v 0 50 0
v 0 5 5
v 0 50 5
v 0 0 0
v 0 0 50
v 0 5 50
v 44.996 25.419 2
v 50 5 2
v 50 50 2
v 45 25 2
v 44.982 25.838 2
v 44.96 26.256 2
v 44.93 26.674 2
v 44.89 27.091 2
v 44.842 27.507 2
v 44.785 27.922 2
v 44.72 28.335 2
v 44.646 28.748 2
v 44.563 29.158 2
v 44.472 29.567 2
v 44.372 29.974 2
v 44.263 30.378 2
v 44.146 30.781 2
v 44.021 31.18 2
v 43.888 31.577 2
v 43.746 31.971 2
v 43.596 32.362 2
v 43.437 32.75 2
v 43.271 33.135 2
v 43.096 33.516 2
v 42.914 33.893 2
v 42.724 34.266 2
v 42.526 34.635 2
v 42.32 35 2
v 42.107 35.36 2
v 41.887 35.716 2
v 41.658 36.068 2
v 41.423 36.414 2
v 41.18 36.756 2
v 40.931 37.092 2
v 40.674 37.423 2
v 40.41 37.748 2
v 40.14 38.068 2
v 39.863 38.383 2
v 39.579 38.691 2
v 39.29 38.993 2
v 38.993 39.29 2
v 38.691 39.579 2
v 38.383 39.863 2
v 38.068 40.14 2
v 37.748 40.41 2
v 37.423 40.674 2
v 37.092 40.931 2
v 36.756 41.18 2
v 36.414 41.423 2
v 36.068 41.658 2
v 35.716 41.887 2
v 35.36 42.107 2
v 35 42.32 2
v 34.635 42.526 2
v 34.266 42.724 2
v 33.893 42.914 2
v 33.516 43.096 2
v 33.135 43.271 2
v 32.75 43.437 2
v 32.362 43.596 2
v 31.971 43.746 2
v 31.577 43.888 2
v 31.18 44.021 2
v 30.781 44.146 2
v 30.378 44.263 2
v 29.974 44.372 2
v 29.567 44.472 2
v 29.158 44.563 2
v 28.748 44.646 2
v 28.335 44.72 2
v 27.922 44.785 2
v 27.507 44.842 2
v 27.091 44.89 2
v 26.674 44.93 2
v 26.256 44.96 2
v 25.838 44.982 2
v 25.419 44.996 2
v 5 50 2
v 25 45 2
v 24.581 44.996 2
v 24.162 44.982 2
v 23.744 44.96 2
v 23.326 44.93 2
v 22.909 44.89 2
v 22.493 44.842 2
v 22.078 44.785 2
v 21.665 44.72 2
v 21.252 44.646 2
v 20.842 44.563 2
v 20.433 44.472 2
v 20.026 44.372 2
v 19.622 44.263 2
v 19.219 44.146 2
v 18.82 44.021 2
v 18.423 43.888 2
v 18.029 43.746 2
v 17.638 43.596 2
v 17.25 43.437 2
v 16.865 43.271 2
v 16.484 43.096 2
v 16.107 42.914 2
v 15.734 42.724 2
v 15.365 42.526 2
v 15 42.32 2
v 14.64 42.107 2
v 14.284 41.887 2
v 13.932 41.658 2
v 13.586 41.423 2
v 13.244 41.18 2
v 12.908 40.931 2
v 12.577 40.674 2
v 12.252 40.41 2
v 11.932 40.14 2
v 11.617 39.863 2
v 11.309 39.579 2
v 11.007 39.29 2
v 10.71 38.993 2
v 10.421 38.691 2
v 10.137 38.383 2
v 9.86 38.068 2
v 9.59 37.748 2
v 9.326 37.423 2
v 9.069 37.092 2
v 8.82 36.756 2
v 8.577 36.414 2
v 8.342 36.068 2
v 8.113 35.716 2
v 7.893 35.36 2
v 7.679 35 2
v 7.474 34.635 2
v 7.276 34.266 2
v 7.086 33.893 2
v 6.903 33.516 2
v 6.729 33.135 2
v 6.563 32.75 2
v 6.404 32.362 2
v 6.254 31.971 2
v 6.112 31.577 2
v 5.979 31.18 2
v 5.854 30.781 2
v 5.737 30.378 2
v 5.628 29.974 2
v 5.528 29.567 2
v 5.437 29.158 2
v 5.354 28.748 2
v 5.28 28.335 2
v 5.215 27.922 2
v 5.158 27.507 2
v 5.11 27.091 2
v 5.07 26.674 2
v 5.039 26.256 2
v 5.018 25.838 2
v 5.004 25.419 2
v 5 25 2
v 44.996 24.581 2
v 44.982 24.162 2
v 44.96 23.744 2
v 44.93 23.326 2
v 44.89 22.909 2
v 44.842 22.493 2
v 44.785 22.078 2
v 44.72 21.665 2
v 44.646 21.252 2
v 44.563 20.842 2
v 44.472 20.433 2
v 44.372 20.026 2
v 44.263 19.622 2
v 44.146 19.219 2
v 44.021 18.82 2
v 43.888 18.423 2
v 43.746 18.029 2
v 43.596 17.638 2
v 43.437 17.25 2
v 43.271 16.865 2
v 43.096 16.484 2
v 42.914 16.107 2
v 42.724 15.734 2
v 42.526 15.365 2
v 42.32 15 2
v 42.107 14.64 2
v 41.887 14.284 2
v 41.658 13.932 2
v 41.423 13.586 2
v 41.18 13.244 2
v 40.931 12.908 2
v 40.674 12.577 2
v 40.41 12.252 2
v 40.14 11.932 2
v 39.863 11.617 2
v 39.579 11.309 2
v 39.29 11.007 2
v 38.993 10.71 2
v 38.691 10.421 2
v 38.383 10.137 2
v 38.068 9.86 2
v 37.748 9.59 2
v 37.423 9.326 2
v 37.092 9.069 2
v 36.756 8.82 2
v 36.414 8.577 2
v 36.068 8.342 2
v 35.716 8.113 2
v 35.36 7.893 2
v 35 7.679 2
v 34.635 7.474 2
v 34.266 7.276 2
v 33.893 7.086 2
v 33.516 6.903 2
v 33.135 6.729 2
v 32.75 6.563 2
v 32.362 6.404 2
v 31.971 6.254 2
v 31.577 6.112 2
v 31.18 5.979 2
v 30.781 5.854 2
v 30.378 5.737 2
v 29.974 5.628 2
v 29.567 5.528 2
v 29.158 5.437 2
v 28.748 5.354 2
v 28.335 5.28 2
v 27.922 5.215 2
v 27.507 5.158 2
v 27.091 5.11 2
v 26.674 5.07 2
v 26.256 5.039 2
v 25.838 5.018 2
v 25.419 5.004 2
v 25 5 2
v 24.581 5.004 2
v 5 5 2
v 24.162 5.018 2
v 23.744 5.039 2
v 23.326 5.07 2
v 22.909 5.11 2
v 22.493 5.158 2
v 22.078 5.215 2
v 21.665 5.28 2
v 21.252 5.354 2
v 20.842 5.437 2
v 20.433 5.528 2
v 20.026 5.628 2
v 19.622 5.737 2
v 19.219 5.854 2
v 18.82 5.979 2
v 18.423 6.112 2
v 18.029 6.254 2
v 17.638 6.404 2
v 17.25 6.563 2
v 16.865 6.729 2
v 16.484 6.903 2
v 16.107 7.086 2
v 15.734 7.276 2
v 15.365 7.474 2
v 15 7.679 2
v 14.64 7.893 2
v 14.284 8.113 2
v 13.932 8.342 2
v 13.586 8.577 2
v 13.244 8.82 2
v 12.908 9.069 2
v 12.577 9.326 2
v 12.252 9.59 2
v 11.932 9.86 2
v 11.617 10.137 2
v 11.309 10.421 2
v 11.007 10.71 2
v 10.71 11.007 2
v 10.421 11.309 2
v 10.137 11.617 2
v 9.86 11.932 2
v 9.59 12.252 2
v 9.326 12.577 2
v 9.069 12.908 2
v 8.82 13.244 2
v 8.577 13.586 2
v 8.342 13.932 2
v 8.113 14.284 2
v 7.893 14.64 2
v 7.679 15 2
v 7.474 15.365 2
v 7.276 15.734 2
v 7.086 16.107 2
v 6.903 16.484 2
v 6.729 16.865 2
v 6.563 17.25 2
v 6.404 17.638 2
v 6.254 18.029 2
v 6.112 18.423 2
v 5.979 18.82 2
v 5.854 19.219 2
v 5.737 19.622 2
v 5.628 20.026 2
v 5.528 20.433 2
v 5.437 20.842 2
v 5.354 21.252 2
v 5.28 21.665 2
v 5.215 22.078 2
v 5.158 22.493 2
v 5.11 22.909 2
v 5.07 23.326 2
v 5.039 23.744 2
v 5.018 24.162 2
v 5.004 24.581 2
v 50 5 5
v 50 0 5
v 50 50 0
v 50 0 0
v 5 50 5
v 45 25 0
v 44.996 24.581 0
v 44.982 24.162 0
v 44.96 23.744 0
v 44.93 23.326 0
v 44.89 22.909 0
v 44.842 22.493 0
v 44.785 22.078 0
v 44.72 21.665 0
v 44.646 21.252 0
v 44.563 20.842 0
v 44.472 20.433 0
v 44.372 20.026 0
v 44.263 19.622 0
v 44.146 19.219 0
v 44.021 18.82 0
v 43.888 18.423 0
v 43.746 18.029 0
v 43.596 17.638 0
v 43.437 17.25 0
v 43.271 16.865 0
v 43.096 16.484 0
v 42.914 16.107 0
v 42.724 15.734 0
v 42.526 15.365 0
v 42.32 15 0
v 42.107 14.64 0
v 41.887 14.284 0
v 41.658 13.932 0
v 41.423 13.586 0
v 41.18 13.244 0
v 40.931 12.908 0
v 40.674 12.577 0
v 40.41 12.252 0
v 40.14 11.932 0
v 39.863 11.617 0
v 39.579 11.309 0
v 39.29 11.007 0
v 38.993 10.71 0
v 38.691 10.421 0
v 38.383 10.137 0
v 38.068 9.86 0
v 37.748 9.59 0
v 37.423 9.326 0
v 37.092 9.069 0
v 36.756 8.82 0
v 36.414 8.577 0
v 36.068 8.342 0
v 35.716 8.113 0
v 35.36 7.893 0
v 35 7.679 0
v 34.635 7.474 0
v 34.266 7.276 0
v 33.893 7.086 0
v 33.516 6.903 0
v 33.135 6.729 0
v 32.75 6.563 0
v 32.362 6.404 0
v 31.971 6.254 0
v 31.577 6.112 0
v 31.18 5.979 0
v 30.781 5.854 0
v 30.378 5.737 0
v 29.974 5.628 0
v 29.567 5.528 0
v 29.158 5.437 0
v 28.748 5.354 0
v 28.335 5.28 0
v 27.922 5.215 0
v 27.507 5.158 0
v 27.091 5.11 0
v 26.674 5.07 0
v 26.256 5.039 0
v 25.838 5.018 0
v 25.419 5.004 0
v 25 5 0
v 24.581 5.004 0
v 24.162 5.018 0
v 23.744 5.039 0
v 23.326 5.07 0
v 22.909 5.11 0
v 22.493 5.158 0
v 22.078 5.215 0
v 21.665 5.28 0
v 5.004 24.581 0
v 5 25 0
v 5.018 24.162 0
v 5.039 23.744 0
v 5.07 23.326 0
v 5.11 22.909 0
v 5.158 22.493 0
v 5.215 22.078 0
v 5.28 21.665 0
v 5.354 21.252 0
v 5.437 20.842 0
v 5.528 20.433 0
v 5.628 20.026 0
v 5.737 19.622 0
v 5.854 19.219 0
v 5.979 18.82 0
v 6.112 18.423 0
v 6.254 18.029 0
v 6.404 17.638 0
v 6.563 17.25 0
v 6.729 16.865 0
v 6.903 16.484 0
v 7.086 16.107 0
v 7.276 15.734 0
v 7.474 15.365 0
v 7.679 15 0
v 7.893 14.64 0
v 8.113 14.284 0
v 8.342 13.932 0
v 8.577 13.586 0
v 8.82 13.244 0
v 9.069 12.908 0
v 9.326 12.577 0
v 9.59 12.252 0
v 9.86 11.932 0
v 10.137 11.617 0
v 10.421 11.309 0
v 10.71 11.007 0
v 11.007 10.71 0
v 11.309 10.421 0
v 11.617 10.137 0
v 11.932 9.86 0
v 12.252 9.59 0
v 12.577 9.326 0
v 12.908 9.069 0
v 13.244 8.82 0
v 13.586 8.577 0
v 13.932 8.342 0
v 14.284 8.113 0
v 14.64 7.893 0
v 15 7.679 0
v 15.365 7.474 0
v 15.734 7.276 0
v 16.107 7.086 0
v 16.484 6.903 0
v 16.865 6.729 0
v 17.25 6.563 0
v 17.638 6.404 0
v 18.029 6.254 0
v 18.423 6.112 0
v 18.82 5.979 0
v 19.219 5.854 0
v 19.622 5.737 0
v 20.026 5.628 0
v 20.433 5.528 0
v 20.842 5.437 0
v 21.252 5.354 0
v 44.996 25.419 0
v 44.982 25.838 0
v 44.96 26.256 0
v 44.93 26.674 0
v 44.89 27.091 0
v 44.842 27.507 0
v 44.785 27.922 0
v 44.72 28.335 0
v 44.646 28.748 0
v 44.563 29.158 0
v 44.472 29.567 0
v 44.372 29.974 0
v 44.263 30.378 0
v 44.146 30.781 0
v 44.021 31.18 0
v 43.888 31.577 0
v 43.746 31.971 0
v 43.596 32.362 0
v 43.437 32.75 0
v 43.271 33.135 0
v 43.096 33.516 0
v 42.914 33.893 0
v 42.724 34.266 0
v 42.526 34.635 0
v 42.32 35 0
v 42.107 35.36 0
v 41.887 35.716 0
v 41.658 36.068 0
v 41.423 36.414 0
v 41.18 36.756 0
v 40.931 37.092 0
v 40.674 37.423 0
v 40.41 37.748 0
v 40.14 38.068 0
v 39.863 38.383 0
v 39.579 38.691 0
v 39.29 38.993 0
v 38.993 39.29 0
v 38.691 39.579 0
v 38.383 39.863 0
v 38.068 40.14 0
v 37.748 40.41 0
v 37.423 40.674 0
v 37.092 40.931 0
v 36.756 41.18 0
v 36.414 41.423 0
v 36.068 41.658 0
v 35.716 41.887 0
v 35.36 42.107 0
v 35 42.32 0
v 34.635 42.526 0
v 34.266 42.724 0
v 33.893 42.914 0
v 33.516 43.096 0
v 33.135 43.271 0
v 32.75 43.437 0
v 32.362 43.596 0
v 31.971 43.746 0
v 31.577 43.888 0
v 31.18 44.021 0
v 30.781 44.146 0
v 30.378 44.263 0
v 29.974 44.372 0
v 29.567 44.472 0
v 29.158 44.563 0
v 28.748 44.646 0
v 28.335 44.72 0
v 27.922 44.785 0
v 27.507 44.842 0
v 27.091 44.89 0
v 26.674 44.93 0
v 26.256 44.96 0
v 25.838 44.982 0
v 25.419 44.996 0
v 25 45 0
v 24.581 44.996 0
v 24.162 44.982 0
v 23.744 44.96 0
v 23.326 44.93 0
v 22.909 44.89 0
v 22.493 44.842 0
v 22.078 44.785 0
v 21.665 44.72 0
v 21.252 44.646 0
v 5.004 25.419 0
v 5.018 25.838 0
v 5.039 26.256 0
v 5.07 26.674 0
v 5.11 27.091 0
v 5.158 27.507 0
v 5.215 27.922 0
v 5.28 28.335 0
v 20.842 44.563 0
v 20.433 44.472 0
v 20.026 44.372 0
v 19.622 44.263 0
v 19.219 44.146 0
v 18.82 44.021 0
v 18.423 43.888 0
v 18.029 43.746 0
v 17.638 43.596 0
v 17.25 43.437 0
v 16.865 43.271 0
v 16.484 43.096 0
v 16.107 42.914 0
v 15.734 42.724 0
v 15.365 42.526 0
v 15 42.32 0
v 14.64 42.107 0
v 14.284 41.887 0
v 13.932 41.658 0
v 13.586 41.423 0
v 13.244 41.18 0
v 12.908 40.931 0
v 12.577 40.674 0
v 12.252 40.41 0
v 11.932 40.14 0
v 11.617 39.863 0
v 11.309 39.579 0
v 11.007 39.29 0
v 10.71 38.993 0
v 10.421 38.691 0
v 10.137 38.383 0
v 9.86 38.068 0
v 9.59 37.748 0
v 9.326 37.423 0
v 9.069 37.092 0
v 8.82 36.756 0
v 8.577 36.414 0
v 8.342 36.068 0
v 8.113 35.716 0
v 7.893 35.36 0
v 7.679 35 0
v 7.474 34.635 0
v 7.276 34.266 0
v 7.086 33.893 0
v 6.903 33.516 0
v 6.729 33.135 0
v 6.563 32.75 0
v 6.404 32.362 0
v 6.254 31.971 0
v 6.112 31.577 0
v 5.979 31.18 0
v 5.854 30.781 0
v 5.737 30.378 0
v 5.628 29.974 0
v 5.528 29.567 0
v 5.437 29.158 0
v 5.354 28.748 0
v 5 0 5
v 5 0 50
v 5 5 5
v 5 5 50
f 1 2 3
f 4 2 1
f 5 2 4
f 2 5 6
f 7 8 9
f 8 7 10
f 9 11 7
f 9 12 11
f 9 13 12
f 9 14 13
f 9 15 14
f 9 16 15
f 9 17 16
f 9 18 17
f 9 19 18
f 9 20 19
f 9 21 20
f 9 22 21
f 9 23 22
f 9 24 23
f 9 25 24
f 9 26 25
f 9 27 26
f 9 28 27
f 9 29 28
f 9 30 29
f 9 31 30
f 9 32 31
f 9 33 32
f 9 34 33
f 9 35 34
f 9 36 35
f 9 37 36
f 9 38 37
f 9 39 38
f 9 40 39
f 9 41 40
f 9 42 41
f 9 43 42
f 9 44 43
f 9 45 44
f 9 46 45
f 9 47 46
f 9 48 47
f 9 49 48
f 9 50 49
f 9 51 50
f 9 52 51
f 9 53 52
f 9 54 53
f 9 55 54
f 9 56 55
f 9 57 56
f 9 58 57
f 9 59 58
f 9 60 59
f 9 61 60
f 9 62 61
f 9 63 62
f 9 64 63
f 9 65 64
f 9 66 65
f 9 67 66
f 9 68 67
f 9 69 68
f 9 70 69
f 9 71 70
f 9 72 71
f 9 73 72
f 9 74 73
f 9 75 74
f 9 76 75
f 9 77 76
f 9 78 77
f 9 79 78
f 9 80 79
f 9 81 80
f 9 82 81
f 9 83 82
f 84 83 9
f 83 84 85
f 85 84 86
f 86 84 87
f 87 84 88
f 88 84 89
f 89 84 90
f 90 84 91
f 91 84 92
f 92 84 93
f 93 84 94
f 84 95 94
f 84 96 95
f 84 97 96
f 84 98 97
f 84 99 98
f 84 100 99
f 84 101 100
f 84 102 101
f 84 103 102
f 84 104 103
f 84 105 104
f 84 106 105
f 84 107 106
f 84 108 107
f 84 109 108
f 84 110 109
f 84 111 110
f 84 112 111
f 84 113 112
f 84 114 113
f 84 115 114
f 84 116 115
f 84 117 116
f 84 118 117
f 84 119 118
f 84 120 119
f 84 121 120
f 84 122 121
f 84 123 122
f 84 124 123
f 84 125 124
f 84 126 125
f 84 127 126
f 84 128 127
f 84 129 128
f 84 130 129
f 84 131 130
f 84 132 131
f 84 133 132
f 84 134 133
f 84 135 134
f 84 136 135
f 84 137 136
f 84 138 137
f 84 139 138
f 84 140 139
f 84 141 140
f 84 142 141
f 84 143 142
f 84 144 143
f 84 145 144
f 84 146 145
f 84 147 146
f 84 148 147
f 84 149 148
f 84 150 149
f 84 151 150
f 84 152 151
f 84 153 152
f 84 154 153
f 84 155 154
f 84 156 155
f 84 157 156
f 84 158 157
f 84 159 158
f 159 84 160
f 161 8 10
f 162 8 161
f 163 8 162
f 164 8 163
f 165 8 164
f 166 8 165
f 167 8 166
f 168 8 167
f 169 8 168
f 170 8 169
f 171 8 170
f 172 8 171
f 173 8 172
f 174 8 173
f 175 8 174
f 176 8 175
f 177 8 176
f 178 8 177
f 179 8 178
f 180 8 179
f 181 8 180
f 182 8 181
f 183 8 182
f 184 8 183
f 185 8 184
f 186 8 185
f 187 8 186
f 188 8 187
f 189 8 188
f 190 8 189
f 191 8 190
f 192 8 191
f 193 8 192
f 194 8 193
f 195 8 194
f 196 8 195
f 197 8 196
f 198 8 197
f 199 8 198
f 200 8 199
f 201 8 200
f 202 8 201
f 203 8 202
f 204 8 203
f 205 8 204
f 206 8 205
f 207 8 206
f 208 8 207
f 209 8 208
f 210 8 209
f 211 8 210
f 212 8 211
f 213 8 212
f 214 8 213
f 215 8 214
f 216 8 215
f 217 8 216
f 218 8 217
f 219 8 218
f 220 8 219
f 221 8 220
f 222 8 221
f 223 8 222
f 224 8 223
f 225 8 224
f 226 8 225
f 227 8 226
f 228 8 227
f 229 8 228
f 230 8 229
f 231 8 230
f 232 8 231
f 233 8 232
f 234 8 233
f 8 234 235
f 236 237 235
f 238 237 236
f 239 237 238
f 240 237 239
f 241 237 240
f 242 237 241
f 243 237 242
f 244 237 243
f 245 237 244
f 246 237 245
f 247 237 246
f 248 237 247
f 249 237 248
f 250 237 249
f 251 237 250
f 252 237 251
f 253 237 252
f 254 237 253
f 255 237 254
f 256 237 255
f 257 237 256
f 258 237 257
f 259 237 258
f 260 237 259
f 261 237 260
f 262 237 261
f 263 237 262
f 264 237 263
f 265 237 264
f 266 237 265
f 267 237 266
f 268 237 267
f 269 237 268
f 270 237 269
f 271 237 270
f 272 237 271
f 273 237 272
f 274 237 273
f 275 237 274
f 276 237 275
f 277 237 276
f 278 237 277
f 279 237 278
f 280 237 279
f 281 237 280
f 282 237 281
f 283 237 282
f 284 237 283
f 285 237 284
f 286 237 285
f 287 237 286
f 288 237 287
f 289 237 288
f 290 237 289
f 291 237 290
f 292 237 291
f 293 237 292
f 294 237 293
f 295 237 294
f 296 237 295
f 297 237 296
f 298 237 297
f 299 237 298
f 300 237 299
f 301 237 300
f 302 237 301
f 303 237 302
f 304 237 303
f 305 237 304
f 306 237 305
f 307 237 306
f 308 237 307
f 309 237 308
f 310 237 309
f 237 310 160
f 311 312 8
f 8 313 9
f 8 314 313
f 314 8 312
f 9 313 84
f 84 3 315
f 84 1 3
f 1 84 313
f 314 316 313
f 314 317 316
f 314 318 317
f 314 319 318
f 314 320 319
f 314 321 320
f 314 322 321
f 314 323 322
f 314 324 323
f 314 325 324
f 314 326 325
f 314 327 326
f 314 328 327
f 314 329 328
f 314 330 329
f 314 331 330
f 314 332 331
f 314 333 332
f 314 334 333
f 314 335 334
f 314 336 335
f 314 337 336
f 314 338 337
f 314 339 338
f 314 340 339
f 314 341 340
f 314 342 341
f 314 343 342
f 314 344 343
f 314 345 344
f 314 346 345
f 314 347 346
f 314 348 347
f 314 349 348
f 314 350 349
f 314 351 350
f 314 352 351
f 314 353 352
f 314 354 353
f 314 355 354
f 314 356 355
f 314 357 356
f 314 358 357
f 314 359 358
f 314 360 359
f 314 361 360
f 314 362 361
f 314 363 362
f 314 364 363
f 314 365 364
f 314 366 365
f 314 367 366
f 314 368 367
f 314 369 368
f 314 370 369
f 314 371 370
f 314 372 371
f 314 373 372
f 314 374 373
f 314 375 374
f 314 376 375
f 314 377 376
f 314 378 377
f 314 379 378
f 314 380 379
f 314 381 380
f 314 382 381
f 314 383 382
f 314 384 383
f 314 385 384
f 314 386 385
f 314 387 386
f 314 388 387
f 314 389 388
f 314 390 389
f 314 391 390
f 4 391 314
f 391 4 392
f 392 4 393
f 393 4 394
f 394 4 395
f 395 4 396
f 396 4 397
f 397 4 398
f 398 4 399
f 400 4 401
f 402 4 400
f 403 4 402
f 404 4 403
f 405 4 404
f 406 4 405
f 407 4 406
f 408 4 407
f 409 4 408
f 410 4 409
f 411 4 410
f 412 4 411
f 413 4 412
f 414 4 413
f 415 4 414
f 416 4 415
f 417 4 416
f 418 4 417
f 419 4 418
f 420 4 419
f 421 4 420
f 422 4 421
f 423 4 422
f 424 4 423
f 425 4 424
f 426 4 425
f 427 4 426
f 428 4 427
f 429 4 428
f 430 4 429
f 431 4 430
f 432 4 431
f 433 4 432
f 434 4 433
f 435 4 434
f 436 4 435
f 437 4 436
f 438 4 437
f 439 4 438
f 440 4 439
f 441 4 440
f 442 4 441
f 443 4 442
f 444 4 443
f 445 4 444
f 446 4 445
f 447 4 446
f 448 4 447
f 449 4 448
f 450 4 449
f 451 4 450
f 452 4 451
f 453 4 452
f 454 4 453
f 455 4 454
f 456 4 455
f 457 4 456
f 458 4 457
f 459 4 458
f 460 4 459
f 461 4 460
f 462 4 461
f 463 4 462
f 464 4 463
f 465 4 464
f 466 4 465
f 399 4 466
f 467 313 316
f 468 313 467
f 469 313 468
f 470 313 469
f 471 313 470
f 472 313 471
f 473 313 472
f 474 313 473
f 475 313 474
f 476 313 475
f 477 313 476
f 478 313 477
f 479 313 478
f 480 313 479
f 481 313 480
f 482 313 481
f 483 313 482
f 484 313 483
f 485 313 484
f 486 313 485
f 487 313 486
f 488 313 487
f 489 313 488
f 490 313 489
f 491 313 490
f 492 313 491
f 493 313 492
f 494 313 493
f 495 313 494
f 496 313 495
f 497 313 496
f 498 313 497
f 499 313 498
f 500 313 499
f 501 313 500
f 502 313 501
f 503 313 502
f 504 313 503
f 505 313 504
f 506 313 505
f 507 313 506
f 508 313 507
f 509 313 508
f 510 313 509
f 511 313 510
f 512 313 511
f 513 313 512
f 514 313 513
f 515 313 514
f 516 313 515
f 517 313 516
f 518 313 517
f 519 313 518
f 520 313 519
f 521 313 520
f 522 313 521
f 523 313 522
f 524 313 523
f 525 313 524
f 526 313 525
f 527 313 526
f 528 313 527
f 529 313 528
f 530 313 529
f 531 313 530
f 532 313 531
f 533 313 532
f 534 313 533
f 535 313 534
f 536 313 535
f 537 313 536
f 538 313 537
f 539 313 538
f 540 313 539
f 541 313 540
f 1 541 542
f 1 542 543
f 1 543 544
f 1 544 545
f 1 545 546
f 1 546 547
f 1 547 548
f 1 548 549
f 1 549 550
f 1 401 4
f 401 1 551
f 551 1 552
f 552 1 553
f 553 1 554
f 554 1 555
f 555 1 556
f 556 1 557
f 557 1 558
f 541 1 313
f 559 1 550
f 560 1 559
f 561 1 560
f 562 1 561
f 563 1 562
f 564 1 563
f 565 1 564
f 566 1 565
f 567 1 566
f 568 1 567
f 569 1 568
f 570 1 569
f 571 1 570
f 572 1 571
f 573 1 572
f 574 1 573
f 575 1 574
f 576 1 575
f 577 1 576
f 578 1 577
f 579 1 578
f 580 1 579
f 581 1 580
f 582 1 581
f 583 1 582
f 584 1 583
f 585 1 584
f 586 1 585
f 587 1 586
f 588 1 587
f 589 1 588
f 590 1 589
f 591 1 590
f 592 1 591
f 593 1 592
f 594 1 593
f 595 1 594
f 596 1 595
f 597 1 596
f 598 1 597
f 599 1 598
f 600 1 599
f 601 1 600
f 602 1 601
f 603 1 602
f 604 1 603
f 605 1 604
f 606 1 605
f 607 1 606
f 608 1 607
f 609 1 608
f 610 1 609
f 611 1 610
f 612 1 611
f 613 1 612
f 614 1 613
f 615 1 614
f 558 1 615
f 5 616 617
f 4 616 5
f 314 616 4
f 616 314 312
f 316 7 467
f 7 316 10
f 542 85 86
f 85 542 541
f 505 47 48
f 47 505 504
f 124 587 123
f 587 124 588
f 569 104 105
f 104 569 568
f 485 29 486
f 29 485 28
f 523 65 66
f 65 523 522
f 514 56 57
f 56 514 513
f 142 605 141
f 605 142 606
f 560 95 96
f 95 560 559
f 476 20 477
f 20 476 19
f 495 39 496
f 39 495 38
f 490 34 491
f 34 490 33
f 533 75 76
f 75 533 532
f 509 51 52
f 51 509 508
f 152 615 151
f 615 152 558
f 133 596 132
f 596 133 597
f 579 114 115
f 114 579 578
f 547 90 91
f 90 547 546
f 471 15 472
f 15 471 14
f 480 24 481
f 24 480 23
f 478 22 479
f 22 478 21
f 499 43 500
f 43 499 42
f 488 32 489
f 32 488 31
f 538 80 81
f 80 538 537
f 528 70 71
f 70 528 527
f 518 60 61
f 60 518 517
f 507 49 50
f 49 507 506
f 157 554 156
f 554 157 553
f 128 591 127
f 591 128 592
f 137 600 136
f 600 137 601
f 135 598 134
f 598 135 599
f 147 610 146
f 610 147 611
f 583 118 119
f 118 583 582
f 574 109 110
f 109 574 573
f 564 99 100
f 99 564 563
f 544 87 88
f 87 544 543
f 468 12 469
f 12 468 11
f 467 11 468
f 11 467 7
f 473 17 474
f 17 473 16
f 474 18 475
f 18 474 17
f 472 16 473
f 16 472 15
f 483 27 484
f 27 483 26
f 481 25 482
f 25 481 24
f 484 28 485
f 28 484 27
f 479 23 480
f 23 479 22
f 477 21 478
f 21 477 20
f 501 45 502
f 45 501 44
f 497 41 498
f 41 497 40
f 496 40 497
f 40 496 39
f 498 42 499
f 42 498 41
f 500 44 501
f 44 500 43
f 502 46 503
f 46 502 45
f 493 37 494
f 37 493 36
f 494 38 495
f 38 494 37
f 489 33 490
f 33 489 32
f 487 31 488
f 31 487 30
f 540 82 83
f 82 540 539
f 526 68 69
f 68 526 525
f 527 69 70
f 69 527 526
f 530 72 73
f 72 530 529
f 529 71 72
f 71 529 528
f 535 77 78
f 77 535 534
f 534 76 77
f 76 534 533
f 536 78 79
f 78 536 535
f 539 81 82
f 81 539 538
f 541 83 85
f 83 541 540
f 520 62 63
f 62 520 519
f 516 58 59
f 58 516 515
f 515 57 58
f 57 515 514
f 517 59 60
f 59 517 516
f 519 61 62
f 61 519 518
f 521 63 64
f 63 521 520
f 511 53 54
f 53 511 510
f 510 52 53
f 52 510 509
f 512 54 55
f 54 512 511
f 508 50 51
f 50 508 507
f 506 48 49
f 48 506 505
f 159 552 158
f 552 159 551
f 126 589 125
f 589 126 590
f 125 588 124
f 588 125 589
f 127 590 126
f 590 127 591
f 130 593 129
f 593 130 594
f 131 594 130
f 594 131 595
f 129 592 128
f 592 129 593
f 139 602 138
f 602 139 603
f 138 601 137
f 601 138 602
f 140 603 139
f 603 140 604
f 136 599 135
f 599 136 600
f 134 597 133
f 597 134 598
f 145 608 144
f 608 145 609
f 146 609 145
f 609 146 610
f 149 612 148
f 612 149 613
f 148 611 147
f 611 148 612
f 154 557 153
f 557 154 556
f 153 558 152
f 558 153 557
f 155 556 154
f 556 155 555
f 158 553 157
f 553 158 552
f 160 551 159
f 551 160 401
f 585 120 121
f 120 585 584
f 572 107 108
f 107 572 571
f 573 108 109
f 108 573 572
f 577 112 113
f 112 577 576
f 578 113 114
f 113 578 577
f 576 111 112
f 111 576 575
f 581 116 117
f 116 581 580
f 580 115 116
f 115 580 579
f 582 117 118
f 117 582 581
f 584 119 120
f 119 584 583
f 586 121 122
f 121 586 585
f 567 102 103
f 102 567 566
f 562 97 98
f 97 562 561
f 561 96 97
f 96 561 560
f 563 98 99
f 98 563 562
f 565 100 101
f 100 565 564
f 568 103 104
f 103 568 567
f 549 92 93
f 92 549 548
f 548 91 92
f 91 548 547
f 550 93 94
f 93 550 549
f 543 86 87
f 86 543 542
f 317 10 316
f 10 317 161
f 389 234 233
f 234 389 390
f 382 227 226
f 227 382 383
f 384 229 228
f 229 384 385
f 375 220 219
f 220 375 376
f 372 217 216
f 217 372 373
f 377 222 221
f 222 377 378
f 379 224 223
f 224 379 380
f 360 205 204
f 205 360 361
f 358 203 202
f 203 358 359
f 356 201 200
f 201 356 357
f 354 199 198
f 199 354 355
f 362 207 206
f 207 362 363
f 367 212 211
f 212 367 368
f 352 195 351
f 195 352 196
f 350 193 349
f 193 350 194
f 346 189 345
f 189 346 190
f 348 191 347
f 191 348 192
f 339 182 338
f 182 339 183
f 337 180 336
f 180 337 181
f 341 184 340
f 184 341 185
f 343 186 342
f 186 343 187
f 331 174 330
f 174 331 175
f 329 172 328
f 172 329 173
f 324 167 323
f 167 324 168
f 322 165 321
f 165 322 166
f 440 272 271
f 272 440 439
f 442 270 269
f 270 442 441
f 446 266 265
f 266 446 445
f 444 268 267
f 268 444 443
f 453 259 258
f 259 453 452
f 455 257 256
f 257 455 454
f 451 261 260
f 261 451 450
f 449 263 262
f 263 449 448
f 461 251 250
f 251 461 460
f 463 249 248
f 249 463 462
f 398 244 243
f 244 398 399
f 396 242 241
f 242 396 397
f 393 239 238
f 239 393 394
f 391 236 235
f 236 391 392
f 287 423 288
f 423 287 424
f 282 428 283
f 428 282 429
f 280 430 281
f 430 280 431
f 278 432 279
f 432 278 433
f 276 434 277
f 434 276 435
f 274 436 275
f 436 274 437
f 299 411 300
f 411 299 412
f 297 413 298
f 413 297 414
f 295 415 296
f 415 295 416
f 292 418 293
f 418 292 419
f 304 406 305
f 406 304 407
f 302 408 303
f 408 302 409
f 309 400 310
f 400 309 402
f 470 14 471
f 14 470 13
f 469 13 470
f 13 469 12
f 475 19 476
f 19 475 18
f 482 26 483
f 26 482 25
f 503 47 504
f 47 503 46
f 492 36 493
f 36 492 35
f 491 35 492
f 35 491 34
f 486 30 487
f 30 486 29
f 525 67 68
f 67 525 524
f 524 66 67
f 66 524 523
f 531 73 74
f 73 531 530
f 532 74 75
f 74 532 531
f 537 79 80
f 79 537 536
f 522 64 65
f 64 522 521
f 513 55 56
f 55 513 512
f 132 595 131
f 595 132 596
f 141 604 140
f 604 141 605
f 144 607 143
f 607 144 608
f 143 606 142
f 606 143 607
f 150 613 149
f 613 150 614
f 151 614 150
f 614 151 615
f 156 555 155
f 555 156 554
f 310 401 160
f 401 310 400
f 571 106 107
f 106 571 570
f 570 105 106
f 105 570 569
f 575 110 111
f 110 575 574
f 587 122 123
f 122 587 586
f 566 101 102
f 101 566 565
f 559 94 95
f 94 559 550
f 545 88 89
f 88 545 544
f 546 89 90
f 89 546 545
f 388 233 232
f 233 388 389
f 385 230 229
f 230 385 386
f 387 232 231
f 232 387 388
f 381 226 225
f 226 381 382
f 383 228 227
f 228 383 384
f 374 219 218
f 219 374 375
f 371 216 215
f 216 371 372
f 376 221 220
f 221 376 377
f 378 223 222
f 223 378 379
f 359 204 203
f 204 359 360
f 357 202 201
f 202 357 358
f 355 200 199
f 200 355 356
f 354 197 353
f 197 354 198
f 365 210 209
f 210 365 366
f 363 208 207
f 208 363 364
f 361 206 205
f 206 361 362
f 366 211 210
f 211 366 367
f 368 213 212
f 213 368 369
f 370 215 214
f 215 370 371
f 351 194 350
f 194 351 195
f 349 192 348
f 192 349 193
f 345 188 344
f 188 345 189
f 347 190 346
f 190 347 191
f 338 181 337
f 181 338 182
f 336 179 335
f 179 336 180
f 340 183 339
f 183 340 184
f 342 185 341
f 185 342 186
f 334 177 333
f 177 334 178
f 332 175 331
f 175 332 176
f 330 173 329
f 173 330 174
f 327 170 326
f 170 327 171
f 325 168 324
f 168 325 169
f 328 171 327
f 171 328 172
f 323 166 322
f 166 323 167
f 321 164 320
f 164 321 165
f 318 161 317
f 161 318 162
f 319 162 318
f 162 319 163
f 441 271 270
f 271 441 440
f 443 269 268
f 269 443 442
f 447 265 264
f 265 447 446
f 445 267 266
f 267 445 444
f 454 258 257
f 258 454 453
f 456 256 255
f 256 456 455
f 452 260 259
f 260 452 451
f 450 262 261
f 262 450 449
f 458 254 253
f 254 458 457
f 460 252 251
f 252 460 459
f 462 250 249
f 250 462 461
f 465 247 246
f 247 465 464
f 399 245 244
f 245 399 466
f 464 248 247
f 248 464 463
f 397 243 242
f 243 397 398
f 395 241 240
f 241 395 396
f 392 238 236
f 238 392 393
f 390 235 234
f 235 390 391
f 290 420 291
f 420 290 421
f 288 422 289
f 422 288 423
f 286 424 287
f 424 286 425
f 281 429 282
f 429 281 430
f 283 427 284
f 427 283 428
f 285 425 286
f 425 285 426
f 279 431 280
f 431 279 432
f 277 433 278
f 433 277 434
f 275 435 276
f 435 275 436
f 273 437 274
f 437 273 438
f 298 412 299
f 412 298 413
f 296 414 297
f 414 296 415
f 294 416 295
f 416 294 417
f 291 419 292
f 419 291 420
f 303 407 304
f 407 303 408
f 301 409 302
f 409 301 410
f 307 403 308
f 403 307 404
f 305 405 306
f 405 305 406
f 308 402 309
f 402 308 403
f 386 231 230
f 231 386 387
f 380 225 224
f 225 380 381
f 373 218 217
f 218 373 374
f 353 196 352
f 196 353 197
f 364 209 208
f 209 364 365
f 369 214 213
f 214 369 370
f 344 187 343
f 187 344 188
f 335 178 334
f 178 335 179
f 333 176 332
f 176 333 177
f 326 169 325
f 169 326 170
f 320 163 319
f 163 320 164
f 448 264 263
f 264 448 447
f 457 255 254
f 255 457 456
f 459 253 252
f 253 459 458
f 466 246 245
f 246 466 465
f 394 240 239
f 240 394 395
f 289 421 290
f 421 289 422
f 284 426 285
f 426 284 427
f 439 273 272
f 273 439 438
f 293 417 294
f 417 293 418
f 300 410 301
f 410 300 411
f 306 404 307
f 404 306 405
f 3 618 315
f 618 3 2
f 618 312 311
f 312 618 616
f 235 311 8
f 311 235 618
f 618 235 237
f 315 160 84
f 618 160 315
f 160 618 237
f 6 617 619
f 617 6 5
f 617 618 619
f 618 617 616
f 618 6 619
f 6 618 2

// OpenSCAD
// file: rod-bearing.scad
module rod_bearing_holder(){
  thick = 2;
  height = 6;

  $fn=100;
  rod_diameter = 8.3;
  ext_diameter = (100/100)*10*in/16;
  in_diameter  = 8*in/16;
  bearing_height = 3*in/16;

  ext_radius   = ext_diameter/2;
  in_radius    = in_diameter/2;

  r = ext_radius+thick;

  difference(){
    shape();
    holes();
  }
  module shape(){
    hull(){
      cylinder(r=r,h=height);
      tx(17)
      cylinder(r=0.60*r,h=height);
    }
  }

  module holes(){
    r = ext_radius;
    h = bearing_height;
    tz(height-h)
    cylinder(r=r,h=h);
    cylinder(r=in_radius,h=100);
    tx(17)
    cylinder(r=rod_diameter/2,h=100);
  }
  
  
}
// file: screw.scad
module screw(head="conic",values=[3,5,1,5]){

  head_d = values[0];
  head_h = values[1];
  body_d = values[2];
  body_h = values[3];


  if(head == "squared")
  {
    translate([0,0,body_h])
    cylinder(r=head_d/2,h=head_h);
    cylinder(r=body_d/2,h=body_h);
  }
  else if(head == "hexagon"){
    translate([0,0,body_h])
    cylinder(r=head_d/2,h=head_h,$fn=6);
    cylinder(r=body_d/2,h=body_h);
  }
  else
  {
    translate([0,0,body_h])
    cylinder(r2=head_d/2,r1=body_d/2,h=head_h);
    cylinder(r=body_d/2,h=body_h);
  }

}
// file: x-cart.scad
module xcart(){

  thickness      = 7;
  gap            = 6;
  cover          = 2;
  nut_apothem = (116/100)*5.2/2;
  nut_inner_d = (180/100)*2.7;   
  nut_radius  = RadiusGivenApothem(nut_apothem,6);
  bearing_diameter = 16;
  bearing_radius   = bearing_diameter/2;

  middle_diameter = 4.5;

  mirror(K)
  difference(){
    base_shape();
    union(){
      ty(+45/2) base_holes();
      ty(-45/2) base_holes();
      middle_holes($fn=30);
      belt_holes();
      cutoff(y=20);
      ty(+45/2) cutoff(50);
      ty(-45/2) cutoff(50);
    }
  }

  module base_holes(){

    gx = cover+nut_radius;
    gy = gap/2;
    
    m1 = +(14-gy)*J;
    m2 = -(14-gy)*J;

    d1 = m1+(54/2-gx)*I;
    d2 = m2+(54/2-gx)*I;
    d3 = -d2;
    d4 = -d1;
    d5 = (d1+m1)/2;
    d6 = (d3+m1)/2;
    d7 = (d2+m2)/2;
    d8 = (d4+m2)/2;

    translate(d1) c(inverted=1);
    translate(d2) c(inverted=1);
    translate(d3) c(inverted=1);
    translate(d4) c(inverted=1);
    translate(d5) c(inverted=1);
    translate(d6) c(inverted=1);
    translate(d7) c(inverted=1);
    translate(d8) c(inverted=1);


    
  }
  module c(head_d=7,h=thickness,inverted=0,type="squared"){
    
    head_h = 3;
    body_d = nut_inner_d/2;
    body_h = thickness-head_h;

    if(inverted == 1){
     screw(type,[body_d,body_h,head_d,head_h],$fn=30); 
    }
    else{
     screw(type,[head_d,head_h,body_d,body_h],$fn=30); 
    }

    

    *cylinder(
      r=nut_inner_d/2,
      h=h,
      center=true,$fn=100);
  }
  module base_shape(){
    cblock(58*I+73*J+thickness*K,cy=1);
    
  }
  module middle_holes(){
    r=middle_diameter/2;
    tx(+24) cylinder(r=r,h=thickness);
    tx(-24) cylinder(r=r,h=thickness);
    
  }
  module belt_holes(){
    y = 5.5;
    x = 14.5;

    ty(+y) tx(+x) c(inverted=1);
    ty(-y) tx(-x) c(inverted=1);
    mirror(J){
    ty(+y) tx(+x) c(inverted=1);
    ty(-y) tx(-x) c(inverted=1);
    }
    
  }

  module cutoff(x=10,y=10){
    size = x*I+y*J+thickness*K;
    cblock(size,cy=1);
  }

}
// file: bearing-holder.scad
  // Major Definitions      {
  bearing_quantity = 2;
  bearing_length   = bearing_quantity*25;
  rod_diameter     = 8;
  bearing_diameter = 16;
  bearing_radius   = bearing_diameter/2;
  base           = 2;
  gap            = 6;
  cover          = 2;
  width          = 2*gap+bearing_diameter;
  height         = bearing_radius+base;
  echo(width);
  // }
  // Nut Definitions        {
  nut_apothem = (116/100)*5.2/2;
  nut_inner_d = (150/100)*2.7;   
  nut_radius  = RadiusGivenApothem(nut_apothem,6);
  // }

module bearing_holder_clip(){

  base  = 3;
  thick = 12;
  height = bearing_radius+base;
  n = 6;
  r = RadiusGivenApothem(bearing_radius,n);

  size = width*I+height*J+thick*K;

  difference(){
    shape();
    holes($fn=100);
  }
  module shape(){
    difference(){
      cblock(size);
      rz(30)
      cylinder(r=r,h=thick,$fn=n);
    }
  }
  module holes(){
    d1 = 3.7;
    d2 = 6;
    
    screw();
    mirror(I)
    screw();
    module screw(){
      tz(thick/2)
      tx((width-gap)/2)
      rx(-90)
      cylinder(r=d1/2,h=100);

      tz(thick/2)
      ty(6)
      tx((width-gap)/2)
      rx(-90)
      cylinder(r=d2/2,h=100);
    }
  }


}
module bearing_holder(){


  holder();
  *bearing();

  module holder(){
    //color("yellow",0.15)
    difference(){
      union(){
        n = 300;
        shape(r=bearing_radius,n=n);
        coverup(n=n);
        coverdown(n=n);
      }
      holes();
    }
    *color("red",0.5 ) bearing();
    *color("blue",0.5) rod();
  }

  module cover(n=6){
    apothem = (135/100)*rod_diameter/2;
    shape(r=apothem,h=cover,n=n);
  }
  module coverup(n=6){
    tz(bearing_length)
    cover(n);

  }
  module coverdown(n=6){
    tz(-cover)
    cover(n);

  }

  module shape(h=bearing_length,r,n=6){
    size = width*I+height*J+h*K;
    apothem = r;
    r = RadiusGivenApothem(apothem,n);

    difference(){
      cblock(size);
      cylinder(r=r,h=h,$fn=n);
    }
  }

  module bearing(){
    cylinder(r=bearing_radius,h=bearing_length,$fn=250);
  }
  module rod(){
    cylinder(r=rod_diameter/2,h=10*bearing_length,center=true,$fn=250);
  }

  module holes(){
    r = nut_radius;
    n = 50;

    d1 = +(bearing_radius+gap/2)*I+r*K;
    d2 = +(bearing_radius+gap/2)*I+(bearing_length-r)*K;
    d3 = -(bearing_radius+gap/2)*I+r*K;
    d4 = -(bearing_radius+gap/2)*I+(bearing_length-r)*K;

    m1 = (d1+d2)/2;
    m2 = (d3+d4)/2;
    
    if(bearing_quantity == 2){
      translate(d1) nut1();
      translate(d2) nut1();
      translate(d3) nut1();
      translate(d4) nut1();

      translate((d1+m1)/2) nut2();
      translate((d3+m2)/2) nut2();
      translate((d2+m1)/2) nut2();
      translate((d4+m2)/2) nut2();

      cutoff2();
    }
    else if(bearing_quantity == 1){
      translate(d1) nut1();
      translate(d2) nut1();
      translate(d3) nut1();
      translate(d4) nut1();

      translate(m1) nut2();
      translate(m2) nut2();
      cutoff();
    }

    module nut1(h=bearing_radius){
      
      ry(30)
      rx(-90)
      cylinder(r=r,h=h,$fn=6);

      rx(-90)
      cylinder(
        r=nut_inner_d/2,
        h=10*bearing_radius,
        center=true,$fn=100);
    }

    module nut2(h=height/2){
      ty(bearing_radius+base)
      mirror(J) nut1(h=h);
    }

    module cutoff(){
      size = (50/100)*[bearing_diameter,100,bearing_length];
      translate((d1+d4)/2)
      cblock(size,center=1);
    }
    module cutoff2(){
      size = [bearing_diameter/1.5,100,bearing_length/3.5];
      translate((d3+m1)/2)
      cblock(size,center=1);
      translate((d2+m2)/2)
      cblock(size,center=1);
    }
  }
  
}
// file: utils.scad
in  = 25.4; // [mm/inch]

// i, j, k vector from Linear Algebra
I = [1,0,0];
J = [0,1,0];
K = [0,0,1];

O = [0,0,0];

IJ = I+J;// xy-plane
JI = I+J;// xy-plane
IK = I+K;// xz-plane
KI = I+K;// xz-plane
JK = J+K;// yz-plane
KJ = J+K;// yz-plane
IJK = I+J+K;

function Rapothem(r,n) = r*cos(180/n);
function Aapothem(a,n) = a/cos(180/n);

function RadiusGivenApothem(a,n) = a/cos(180/n);
function ApothemGivenRadius(r,n) = r*cos(180/n);

function Ones(length) =
    let (length = abs(length))
    (length > 0) ? [for(i=[0:length-1]) 1]:[];

function Zeros(length) =
    let (length = abs(length))
    (length > 0) ? [for(i=[0:length-1]) 0]:[];

function OnesUntil(n,length) =
    cat(Ones(n),Zeros(length-n));

function SumVector(v) = 
    v*Ones(len(v));

function SumVectorUntil(v,n) = 
    v*OnesUntil(n,len(v));

function cat(v1,v2) = [
    for(i=[0:len(v1)+len(v2)-1])
        (i < len(v1)) ?
        v1[i]         :
        v2[i-len(v1)]
];

function odd(n)  = (n%2);
function even(n) = !odd(n);

module sector(r=15,angle=30,height=1,n=5) {
    P = [
            for(i = [-1:n])
                let (t =i*angle/n)
                (i == -1)?
                [0,0]:
                r*[cos(t),sin(t)]

        ];
    linear_extrude(height) polygon(P);
}
module ring(R=20,r=15,angle=30,height=1,n=5) {
    difference() {
        sector(max(R,r),angle,height,n);
        sector(min(R,r),angle,height,n);
    }
}

module cblock(size,cx=true,cy=false,cz=false,center=false) {
    if(center)
        cube(size,center=true);
    else
    {
        // If it is a scalar
        if(size[0] == undef)
        {
          dx = (cx) ? -0.5*size : 0;
          dy = (cy) ? -0.5*size : 0;
          dz = (cz) ? -0.5*size : 0;

          shape(size,dx,dy,dz);
        }
            
            
        else
        {
          dx = (cx) ? -0.5*size*I : 0;
          dy = (cy) ? -0.5*size*J : 0;
          dz = (cz) ? -0.5*size*K : 0;
          shape(size,dx,dy,dz);
        }
    }

    module shape(size,dx,dy,dz){
      tx(dx)
      ty(dy)
      tz(dz)
      cube(size);
    }
}
module tx(d=0){
    translate(d*I)
    children();
}
module ty(d=0){
    translate(d*J)
    children();
}
module tz(d=0){
    translate(d*K)
    children();
}
module rx(r=0){
    rotate(r*I)
    children();
}
module ry(r=0){
    rotate(r*J)
    children();
}
module rz(r=0){
    rotate(r*K)
    children();
}
// main file
include <utils.scad>

include <bearing-holder.scad>
include <x-cart.scad>
include <screw.scad>
include <rod-bearing.scad>

*rx(-90)
bearing_holder();

*rod_bearing_holder();
*bearing_holder_clip();

*xcart();

calibration();

module calibration(){
  a = 1*50;
  b = 1*5;
  base_h = 2;
  
  s1 = a*I+b*JK;
  s2 = a*J+b*IK;
  s3 = a*K+b*IJ;
  s4 = a*IJ+base_h*K;
  
  cube(s1);
  cube(s2);
  cube(s3);
  difference(){
    cube(s4);
    translate(a*IJ/2)
    union(){
      cylinder(r=-b+a/2,h=base_h,$fn=300);

      *cube(a*IJ/2+base_h*K);
    }
  }
}




























//include <./utils.scad>
//
//include <./screw.scad>
//include <./bearing-holder.scad>
//include <./x-cart.scad>
//include <./socket.scad>
//include <./bearing.scad>
////include <./bed-cart.scad>
//
//
//bearing_holder();
//*xcart();
//*socket();
//*bearing();
//
//*difference(){
//  
//  side   = 25;
//  height = 50;
//  radius = (side-2)/2;
//  n      = 50;
//  r      = 7;
//
//  cube(side*IJ+height*K,center=true);
//  union(){
//    *cylinder(r=radius,h=height,center=true,$fn=n);
//
//    //d = 40*IJ;
//
//    //translate(d)
//    //cylinder(r=r,h=height,center=true,$fn=n);
//
//    //translate(-d)
//    //cylinder(r=r,h=height,center=true,$fn=n);
//
//    //mirror(J){
//    //  translate(d)
//    //  cylinder(r=r,h=height,center=true,$fn=n);
//
//    //  translate(-d)
//    //  cylinder(r=r,h=height,center=true,$fn=n);
//    //}
//  }
//
//}
